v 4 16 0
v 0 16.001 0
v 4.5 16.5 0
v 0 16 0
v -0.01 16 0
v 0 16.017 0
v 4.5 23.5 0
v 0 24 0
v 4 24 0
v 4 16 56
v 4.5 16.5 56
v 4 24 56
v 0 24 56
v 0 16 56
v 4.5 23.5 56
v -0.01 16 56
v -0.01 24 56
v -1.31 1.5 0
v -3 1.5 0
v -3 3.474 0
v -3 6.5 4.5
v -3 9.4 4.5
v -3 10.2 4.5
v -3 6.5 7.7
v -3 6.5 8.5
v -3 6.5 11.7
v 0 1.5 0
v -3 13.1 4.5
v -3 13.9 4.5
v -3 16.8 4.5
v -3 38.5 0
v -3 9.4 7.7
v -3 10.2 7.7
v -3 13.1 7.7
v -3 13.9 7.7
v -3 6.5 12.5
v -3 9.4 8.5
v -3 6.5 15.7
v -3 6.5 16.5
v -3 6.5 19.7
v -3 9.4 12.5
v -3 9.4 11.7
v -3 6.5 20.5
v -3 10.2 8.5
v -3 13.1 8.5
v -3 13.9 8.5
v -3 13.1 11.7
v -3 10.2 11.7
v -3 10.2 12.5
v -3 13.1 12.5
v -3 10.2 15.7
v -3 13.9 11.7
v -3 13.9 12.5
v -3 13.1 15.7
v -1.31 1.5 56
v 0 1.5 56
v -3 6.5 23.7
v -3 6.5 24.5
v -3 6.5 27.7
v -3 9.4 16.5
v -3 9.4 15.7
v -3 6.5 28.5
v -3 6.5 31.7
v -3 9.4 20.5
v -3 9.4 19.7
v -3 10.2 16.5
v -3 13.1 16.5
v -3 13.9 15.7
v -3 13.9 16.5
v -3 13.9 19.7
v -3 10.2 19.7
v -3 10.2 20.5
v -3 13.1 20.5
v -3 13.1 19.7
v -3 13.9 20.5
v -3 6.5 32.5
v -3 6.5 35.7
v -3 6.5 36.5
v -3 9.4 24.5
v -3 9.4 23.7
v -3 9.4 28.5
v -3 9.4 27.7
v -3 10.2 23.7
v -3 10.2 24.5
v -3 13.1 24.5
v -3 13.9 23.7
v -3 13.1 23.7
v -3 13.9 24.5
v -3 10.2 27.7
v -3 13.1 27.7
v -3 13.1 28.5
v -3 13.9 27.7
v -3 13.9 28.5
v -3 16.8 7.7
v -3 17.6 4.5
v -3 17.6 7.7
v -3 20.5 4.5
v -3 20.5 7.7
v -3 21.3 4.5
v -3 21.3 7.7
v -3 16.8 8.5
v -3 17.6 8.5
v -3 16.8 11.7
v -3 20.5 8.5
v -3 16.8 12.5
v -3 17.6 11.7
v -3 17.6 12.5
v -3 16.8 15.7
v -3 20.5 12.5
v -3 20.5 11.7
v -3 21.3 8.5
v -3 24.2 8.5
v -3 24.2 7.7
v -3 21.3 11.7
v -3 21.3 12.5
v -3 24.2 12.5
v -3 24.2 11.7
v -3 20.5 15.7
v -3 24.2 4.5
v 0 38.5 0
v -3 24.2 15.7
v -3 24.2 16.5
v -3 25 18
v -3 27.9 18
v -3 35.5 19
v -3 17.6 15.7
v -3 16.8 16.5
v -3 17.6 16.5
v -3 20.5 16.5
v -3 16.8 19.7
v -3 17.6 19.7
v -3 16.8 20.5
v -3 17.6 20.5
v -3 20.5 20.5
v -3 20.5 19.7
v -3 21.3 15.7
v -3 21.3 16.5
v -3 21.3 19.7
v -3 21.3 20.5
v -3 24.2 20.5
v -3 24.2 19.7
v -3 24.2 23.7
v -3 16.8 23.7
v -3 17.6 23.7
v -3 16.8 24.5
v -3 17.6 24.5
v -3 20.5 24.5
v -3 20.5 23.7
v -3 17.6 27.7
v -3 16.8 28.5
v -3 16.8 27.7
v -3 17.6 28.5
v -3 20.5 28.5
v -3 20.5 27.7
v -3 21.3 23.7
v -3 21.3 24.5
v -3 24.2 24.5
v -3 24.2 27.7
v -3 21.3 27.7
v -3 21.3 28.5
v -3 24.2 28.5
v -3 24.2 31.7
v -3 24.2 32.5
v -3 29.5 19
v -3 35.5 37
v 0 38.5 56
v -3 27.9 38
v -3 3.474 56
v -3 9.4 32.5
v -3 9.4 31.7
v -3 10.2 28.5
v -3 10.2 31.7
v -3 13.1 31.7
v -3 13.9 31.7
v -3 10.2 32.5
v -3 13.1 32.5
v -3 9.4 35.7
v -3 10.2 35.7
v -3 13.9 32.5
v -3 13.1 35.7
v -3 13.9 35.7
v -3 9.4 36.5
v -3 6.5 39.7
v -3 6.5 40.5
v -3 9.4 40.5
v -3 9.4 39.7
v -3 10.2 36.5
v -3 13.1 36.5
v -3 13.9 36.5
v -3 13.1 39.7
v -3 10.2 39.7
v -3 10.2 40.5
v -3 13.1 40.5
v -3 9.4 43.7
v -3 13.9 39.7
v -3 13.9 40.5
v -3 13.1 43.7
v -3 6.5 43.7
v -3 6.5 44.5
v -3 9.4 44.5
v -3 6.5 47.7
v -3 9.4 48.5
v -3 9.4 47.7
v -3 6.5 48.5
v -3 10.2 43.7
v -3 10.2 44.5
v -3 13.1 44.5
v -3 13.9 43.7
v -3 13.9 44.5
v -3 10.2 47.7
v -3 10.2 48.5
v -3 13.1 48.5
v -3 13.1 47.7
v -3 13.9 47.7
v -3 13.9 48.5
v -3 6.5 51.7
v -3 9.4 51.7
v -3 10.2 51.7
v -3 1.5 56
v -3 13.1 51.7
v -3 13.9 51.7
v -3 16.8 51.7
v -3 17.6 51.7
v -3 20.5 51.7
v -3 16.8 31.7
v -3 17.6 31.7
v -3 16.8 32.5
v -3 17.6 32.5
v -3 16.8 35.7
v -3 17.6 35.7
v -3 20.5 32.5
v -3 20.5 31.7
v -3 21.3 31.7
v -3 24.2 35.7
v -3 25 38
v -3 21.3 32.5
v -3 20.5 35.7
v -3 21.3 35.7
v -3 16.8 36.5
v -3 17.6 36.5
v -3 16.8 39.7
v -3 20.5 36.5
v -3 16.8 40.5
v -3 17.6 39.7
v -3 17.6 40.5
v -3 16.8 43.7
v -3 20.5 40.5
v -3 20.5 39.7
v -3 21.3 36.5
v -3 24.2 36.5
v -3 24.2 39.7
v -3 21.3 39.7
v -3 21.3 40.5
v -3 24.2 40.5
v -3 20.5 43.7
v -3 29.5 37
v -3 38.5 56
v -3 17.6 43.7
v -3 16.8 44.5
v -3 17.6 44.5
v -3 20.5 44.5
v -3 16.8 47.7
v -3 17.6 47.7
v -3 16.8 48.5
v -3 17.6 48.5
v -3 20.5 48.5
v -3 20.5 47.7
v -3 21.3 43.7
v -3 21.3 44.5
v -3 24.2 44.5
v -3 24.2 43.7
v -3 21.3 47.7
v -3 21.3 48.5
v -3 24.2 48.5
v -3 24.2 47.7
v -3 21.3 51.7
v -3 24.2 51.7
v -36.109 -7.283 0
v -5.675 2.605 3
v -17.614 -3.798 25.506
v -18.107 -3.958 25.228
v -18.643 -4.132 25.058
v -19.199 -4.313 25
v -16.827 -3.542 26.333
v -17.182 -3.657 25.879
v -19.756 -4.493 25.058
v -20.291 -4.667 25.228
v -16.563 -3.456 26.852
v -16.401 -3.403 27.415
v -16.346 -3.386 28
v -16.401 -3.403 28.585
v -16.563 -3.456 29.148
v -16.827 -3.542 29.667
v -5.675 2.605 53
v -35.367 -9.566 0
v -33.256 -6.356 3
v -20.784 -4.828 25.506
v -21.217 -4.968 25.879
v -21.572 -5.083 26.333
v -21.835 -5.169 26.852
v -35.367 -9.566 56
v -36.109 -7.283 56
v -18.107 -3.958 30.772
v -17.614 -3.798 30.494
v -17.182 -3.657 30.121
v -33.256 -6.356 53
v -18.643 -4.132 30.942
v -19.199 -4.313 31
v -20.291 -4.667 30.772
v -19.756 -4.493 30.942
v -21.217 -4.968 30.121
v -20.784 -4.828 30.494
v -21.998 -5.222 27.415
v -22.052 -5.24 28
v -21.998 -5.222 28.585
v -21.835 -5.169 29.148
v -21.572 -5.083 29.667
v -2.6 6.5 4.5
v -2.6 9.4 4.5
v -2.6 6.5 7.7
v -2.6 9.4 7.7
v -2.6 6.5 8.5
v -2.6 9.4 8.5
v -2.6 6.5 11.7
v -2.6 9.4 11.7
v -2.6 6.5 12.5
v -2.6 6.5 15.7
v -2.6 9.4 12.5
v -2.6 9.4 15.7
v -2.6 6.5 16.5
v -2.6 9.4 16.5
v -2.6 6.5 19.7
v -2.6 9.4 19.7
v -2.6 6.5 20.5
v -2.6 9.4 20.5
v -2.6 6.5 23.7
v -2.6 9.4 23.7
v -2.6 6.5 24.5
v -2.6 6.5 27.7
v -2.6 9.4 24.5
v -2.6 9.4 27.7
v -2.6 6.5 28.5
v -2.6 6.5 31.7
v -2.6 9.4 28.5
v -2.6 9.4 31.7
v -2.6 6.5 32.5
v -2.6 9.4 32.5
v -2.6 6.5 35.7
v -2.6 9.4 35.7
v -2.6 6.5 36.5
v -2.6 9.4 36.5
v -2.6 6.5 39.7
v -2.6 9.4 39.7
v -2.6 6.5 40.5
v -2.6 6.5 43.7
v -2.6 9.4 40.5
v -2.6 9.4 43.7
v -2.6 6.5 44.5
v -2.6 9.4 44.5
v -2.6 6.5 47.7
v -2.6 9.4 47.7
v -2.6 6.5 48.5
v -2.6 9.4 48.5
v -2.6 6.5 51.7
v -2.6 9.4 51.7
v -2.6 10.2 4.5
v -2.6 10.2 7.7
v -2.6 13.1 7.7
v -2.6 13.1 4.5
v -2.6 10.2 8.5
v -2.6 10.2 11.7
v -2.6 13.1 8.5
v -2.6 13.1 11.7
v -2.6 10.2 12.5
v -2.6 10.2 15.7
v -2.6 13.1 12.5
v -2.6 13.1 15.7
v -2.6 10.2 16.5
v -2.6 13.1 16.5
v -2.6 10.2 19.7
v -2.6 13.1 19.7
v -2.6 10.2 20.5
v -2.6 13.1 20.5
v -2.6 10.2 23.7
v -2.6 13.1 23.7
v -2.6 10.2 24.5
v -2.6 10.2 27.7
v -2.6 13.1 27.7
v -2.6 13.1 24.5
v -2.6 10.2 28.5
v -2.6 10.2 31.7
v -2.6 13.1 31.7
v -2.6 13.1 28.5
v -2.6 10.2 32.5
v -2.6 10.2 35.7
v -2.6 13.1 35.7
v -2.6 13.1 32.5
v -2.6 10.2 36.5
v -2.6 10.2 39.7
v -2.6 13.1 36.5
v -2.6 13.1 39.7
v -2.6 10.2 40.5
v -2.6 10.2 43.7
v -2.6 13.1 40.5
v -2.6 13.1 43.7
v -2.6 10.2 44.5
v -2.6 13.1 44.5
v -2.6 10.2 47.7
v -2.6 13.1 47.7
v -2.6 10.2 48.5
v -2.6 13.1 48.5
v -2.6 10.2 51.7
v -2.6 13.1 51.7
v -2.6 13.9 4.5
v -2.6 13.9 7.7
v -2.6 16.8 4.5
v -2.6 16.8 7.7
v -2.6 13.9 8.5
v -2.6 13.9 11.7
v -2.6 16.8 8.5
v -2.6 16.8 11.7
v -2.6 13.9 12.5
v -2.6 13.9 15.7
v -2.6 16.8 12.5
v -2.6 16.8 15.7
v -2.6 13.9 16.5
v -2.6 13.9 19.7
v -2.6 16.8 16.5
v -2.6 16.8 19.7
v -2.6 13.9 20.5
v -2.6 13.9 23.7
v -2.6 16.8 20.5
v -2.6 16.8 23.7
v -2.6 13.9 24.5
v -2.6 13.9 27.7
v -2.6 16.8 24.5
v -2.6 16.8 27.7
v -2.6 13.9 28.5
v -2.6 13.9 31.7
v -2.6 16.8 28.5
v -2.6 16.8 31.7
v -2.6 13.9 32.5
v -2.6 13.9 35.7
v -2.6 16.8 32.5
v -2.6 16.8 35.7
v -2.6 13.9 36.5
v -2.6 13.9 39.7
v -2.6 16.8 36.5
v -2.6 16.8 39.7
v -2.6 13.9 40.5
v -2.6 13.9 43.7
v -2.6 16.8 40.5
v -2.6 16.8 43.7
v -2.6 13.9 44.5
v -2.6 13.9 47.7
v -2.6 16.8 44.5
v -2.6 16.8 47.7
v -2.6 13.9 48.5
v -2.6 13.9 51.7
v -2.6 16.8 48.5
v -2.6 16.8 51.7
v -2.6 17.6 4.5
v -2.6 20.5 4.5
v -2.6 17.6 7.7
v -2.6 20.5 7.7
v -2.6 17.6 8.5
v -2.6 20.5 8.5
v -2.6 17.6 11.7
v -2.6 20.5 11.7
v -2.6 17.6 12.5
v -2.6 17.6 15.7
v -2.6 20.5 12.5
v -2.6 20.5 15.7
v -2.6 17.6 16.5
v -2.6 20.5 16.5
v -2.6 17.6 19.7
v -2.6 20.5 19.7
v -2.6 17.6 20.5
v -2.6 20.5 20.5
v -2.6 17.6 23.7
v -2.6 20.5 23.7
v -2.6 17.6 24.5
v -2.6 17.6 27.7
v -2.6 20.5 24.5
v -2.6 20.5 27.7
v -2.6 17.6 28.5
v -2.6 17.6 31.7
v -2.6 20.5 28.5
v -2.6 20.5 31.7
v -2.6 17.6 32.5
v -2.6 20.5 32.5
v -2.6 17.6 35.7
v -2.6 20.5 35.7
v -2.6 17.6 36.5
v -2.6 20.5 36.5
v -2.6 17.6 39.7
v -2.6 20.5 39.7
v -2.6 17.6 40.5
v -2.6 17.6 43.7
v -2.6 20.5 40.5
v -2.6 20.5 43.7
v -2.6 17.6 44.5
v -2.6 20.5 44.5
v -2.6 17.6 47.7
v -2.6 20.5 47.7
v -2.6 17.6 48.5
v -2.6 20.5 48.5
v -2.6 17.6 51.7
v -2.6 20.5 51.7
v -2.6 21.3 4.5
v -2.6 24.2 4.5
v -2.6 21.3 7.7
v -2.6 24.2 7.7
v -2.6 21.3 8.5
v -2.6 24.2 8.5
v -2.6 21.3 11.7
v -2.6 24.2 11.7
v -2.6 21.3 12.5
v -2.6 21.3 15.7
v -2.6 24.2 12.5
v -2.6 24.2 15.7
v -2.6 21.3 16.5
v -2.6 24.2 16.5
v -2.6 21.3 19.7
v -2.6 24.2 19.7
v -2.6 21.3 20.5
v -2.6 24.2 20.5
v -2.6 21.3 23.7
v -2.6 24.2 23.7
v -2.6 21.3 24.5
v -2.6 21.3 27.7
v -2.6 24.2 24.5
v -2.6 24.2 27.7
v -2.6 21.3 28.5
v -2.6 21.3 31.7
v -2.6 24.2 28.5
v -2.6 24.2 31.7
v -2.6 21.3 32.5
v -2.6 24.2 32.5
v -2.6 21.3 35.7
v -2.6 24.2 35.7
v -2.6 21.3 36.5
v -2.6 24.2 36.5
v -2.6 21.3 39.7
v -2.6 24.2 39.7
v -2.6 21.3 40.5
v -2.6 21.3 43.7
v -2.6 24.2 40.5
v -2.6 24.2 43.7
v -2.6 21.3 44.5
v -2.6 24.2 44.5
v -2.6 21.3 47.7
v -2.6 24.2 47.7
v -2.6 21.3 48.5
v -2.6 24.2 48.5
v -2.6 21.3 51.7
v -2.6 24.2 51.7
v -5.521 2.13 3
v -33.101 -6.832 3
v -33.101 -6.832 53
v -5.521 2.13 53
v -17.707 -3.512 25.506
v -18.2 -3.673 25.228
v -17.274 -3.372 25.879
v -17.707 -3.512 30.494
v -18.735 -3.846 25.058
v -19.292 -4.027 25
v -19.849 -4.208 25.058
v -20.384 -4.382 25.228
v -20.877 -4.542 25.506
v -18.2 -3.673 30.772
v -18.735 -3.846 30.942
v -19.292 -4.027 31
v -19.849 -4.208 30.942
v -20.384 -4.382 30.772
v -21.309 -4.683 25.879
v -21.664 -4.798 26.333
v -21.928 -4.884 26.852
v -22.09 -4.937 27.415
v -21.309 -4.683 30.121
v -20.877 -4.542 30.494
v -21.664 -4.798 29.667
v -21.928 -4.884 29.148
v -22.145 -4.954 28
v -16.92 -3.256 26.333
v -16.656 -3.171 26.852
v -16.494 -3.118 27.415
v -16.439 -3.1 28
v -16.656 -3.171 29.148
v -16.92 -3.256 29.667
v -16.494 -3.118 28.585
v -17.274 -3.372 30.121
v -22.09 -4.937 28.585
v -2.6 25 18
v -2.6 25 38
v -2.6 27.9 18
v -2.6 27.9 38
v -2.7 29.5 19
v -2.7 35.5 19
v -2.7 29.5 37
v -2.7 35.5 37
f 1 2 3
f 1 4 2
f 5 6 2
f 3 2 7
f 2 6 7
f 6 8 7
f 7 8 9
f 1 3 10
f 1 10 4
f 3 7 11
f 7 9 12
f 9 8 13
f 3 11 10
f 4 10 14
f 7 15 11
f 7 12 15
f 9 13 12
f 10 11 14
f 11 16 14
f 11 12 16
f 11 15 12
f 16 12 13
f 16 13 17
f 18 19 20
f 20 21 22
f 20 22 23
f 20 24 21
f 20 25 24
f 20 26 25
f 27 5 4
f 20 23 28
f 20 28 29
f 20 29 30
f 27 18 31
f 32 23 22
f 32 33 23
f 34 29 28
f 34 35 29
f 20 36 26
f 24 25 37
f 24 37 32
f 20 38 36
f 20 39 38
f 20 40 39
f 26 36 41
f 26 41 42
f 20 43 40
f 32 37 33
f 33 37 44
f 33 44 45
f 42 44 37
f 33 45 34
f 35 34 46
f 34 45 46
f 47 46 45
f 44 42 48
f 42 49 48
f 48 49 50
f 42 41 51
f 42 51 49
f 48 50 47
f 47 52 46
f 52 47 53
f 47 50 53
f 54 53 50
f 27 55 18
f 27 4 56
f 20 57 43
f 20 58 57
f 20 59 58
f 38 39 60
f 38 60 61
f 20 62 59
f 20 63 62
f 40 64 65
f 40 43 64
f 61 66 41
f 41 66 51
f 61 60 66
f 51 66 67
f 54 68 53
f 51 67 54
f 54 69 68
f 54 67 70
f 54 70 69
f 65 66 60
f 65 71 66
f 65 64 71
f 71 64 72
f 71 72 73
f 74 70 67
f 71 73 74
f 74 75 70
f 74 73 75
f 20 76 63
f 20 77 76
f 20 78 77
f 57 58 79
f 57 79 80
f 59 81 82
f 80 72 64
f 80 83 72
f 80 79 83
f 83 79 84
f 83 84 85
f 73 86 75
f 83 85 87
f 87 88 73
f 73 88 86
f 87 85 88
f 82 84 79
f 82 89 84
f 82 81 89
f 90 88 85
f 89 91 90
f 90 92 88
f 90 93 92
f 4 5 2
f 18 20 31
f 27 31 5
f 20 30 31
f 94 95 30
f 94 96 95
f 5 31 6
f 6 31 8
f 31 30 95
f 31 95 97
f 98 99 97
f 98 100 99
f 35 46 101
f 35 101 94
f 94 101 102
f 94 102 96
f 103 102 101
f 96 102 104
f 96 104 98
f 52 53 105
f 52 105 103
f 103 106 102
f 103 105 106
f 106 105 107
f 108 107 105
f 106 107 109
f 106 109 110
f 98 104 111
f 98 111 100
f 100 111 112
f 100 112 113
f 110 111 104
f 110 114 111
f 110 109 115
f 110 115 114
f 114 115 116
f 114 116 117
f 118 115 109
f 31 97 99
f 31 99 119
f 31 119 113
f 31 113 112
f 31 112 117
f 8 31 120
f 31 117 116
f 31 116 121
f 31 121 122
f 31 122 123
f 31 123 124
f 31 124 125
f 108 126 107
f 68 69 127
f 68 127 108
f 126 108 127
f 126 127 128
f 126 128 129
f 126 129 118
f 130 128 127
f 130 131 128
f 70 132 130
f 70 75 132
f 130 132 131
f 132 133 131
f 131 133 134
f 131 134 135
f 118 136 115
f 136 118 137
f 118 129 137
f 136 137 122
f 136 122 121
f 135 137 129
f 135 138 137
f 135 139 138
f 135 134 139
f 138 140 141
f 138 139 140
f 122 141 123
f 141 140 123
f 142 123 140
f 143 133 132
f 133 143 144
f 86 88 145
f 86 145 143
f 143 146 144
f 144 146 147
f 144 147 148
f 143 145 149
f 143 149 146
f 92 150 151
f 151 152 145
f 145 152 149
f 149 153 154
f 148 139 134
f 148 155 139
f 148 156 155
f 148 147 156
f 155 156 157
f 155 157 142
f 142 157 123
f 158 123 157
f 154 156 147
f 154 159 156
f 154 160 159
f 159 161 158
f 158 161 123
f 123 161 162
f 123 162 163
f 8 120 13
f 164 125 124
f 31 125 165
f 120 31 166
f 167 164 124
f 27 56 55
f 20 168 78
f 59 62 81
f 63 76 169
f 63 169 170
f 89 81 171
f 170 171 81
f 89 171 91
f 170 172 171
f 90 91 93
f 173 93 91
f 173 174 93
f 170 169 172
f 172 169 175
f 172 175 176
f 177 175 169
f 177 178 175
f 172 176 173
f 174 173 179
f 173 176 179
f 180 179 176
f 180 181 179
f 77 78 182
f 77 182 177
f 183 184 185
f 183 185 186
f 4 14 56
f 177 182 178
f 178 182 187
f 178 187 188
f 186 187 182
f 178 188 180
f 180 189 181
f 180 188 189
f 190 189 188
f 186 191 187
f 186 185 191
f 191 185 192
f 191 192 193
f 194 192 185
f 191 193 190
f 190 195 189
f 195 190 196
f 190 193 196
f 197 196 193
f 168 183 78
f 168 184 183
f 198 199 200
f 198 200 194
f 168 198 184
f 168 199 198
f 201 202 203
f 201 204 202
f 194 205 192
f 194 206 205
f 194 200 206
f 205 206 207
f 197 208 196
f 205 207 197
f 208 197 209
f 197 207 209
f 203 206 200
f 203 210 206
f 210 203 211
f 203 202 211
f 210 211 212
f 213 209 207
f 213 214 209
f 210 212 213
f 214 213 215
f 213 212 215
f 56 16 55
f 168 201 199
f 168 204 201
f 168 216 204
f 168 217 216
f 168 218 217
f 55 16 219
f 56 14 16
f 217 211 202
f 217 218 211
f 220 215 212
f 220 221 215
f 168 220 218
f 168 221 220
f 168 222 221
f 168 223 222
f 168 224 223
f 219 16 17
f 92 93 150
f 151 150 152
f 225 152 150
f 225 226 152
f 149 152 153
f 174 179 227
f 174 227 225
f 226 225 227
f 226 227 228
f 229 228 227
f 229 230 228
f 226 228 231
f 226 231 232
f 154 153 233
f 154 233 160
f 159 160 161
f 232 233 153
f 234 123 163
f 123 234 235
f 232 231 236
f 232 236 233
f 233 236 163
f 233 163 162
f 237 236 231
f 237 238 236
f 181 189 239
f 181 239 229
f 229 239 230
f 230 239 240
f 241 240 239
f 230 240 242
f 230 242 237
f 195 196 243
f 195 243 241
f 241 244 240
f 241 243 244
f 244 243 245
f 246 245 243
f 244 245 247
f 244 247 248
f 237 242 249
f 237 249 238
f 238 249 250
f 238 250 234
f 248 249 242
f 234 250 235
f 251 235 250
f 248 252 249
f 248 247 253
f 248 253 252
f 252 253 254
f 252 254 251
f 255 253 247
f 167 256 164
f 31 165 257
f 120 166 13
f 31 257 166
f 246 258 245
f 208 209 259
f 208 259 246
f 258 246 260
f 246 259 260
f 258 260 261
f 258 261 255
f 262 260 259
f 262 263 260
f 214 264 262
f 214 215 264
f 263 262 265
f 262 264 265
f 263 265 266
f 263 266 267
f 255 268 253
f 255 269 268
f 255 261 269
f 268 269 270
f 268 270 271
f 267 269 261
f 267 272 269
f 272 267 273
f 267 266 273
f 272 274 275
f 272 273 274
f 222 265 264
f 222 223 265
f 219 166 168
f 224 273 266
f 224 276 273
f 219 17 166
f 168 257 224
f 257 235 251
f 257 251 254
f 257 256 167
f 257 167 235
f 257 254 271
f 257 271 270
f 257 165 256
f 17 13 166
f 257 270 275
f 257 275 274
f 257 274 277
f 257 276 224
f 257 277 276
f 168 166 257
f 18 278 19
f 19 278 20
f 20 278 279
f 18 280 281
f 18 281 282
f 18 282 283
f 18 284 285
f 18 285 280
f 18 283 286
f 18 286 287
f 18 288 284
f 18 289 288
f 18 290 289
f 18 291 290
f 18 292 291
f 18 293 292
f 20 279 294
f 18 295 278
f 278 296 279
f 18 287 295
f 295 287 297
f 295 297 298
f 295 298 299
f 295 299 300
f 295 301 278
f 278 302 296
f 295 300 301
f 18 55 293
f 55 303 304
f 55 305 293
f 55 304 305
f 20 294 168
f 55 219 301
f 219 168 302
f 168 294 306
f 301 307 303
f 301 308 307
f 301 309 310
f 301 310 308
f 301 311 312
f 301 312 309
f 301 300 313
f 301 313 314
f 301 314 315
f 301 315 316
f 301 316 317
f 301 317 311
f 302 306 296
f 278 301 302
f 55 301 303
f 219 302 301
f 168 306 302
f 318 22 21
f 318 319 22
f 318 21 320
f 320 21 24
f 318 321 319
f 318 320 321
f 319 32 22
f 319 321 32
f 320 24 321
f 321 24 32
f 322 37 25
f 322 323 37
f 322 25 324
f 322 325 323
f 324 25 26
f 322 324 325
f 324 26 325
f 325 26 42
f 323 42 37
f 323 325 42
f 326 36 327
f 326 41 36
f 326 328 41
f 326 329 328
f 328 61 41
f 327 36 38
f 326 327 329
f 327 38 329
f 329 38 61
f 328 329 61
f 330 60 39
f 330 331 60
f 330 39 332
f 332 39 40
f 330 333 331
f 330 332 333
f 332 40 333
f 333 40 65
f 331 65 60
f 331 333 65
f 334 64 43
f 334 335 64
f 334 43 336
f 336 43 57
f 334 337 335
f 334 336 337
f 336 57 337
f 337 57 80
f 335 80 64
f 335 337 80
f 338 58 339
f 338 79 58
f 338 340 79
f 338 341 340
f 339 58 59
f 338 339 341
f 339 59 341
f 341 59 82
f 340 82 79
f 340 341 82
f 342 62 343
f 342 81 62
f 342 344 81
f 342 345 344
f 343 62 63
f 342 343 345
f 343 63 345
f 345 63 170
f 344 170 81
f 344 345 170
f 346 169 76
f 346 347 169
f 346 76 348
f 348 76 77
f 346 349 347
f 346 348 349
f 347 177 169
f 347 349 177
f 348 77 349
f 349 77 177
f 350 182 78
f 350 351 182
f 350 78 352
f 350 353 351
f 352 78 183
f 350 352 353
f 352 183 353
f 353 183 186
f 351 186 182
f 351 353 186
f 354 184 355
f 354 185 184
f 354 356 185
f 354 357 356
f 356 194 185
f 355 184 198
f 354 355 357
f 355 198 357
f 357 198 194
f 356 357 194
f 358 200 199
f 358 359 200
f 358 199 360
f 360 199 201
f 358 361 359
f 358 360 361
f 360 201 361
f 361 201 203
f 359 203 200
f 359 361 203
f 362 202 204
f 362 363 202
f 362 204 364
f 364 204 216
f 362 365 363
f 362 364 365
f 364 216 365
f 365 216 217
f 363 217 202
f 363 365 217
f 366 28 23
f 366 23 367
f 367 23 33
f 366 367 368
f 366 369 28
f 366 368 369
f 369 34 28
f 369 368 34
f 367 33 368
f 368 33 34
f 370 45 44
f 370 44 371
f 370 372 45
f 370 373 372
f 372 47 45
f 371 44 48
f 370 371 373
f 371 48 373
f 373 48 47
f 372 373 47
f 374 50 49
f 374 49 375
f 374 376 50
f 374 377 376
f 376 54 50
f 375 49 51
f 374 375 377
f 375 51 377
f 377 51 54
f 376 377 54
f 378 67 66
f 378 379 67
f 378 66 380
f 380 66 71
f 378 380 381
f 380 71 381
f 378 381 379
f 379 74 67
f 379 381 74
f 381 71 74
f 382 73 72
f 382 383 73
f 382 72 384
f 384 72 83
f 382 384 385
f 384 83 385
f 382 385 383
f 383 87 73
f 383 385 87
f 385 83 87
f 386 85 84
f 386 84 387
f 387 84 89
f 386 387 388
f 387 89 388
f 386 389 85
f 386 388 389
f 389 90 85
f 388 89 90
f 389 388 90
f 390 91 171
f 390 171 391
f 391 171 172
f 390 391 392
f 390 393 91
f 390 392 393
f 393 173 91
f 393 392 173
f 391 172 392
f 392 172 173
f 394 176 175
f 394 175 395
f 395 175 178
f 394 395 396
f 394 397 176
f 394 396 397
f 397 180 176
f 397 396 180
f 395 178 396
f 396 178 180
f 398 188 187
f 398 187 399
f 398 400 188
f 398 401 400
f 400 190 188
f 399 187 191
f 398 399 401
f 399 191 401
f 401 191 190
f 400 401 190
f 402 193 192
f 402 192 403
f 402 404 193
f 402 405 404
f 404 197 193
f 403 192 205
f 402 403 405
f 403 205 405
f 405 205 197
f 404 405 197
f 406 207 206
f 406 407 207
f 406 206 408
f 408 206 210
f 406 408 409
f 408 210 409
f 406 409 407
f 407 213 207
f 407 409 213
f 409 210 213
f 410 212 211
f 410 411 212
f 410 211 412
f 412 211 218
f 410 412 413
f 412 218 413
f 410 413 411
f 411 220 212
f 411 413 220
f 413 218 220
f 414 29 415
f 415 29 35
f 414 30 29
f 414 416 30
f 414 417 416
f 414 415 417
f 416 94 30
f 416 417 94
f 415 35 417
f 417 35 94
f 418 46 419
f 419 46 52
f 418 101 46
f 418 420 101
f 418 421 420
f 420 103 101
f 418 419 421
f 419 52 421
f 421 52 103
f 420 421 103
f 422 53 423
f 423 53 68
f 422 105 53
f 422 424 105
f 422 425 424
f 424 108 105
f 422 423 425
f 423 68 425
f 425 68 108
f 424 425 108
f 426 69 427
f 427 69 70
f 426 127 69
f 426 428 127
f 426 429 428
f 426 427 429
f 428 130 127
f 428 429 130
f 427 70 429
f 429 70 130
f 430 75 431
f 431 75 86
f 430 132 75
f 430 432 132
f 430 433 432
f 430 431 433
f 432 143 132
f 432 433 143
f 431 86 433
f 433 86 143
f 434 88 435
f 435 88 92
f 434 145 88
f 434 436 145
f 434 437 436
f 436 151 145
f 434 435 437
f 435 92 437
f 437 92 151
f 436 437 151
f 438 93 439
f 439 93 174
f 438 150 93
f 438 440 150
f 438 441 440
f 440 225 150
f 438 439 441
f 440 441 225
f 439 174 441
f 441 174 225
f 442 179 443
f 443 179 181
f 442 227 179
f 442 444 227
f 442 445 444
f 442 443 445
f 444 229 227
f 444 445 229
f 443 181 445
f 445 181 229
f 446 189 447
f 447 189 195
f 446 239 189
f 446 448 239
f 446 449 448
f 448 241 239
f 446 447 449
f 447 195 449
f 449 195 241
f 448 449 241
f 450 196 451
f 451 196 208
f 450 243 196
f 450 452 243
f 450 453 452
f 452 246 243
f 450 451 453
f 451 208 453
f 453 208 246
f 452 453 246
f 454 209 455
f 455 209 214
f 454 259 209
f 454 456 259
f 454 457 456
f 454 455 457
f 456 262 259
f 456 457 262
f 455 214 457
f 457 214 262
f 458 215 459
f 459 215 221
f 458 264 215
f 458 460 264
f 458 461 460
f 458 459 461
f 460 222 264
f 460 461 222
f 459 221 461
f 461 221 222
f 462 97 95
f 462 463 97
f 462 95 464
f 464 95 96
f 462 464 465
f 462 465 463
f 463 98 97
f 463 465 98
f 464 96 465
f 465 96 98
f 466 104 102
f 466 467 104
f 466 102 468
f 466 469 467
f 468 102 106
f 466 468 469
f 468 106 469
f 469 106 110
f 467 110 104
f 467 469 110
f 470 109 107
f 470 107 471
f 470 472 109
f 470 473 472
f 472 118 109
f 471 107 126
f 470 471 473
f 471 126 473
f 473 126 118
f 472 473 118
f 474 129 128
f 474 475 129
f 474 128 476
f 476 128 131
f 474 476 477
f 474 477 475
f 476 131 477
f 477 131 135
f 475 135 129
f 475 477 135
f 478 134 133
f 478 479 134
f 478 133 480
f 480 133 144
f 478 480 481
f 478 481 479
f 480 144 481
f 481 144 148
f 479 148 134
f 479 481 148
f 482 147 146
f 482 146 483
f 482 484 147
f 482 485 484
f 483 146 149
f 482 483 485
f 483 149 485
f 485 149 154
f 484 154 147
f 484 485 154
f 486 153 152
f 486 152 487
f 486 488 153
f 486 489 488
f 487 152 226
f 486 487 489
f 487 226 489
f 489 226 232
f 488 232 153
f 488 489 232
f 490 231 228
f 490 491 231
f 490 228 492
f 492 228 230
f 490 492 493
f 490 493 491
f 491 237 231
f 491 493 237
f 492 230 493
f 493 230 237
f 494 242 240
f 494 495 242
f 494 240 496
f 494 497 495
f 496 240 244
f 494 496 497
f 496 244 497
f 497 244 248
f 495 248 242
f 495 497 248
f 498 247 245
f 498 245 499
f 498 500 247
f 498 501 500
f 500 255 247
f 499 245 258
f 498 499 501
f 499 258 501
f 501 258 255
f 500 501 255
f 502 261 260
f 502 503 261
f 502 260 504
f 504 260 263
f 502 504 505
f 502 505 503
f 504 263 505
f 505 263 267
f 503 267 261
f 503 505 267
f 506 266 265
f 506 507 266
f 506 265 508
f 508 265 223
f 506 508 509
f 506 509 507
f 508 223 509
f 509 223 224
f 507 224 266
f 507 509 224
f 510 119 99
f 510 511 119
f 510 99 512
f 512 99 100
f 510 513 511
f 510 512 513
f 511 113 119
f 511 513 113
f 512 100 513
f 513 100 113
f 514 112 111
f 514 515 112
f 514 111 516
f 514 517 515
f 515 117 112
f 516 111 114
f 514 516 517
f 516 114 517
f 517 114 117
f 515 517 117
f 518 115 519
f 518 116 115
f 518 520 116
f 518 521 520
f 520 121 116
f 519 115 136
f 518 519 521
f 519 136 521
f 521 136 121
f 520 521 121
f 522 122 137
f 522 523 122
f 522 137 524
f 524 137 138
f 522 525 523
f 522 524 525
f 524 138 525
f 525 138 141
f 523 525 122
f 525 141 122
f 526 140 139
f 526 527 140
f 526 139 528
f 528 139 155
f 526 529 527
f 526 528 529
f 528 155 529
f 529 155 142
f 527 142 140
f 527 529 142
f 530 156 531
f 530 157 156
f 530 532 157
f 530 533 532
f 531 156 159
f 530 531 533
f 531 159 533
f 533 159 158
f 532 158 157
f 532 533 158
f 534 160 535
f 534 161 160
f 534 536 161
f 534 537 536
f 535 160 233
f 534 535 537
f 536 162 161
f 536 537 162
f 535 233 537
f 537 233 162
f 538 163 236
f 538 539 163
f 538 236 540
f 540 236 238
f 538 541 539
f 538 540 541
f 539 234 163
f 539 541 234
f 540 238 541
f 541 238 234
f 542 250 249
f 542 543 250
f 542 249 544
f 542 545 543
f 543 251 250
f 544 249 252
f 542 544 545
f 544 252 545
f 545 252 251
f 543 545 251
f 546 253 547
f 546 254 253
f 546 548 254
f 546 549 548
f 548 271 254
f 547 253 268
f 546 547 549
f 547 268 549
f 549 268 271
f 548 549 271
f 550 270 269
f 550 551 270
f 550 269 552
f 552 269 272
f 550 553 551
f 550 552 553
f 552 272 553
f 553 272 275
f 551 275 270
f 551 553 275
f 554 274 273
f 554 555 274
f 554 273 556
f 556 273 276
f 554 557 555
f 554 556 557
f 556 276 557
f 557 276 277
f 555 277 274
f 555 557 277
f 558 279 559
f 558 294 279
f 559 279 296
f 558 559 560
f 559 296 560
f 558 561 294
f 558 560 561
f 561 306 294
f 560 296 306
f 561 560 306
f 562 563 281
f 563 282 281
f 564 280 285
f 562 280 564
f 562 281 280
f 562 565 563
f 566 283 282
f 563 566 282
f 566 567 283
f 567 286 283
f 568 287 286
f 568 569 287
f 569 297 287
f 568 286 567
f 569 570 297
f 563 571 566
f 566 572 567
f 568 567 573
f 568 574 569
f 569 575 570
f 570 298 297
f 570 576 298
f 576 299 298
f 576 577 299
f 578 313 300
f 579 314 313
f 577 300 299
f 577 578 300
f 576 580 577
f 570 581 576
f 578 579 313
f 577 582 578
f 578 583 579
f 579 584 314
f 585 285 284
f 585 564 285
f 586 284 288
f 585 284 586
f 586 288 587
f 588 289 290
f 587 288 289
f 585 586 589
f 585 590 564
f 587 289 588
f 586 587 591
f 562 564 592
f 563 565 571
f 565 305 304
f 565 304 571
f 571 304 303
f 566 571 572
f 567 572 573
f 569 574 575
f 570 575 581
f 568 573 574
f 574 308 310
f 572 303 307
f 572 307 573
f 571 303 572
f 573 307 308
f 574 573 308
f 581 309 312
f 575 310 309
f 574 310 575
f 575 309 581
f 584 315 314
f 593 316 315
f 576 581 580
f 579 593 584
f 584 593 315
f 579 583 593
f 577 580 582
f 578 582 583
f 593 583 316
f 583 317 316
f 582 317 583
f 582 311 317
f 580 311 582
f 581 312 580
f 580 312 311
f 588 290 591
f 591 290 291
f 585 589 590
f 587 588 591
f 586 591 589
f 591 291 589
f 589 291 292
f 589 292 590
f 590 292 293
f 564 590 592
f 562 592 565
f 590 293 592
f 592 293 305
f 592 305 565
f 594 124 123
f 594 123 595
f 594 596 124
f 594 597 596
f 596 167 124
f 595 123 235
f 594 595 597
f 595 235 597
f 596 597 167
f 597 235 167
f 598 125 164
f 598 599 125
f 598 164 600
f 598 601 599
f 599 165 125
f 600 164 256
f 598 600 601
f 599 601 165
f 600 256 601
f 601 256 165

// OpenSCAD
// file: gh_s37d.scad
// Tiny Engineer parts adapted from the EMAX ES9051 export to fit a GH-S37D servo.
//
// The ES9051 and GH-S37D are close in size. The main difference is the
// mounting-tab span, so each servo pocket's tab slot is lengthened at both
// ends. Everything else is the unchanged ES9051 mesh.
//
// Change the sizes below to match your servo (measure with calipers), then
// run ./build.sh to regenerate the STLs.

// ── GH-S37D sizes (mm) ──────────────────────────────────────────────────────
servo_body_width  = 20;    // body length, tabs not included
servo_mount_width = 5.45;  // how far each tab sticks out from the body (5.2 from listings was too short)
clearance         = 0.3;   // gap per side, same as the original model

// ES9051 values the base meshes were exported with (do not change)
base_body_width   = 20;
base_mount_width  = 4.6;

// ── Tab slots in the ES9051 meshes ─────────────────────────────────────────
// Found by measuring the meshes. All slots run along X.
// [center_x, half_span, [y_min, y_max], [z_min, z_max]]
// The y/z ranges include the open side the servo is dropped in from.
slots = [
    ["Chest", [
        [-0.950, 14.900, [-21.30, -19.60], [16.30, 27.82]],   // arm servo
        [-0.950, 14.900, [19.60, 21.30], [16.30, 27.82]],     // arm servo
        [-0.950, 14.900, [-4.70, 4.70], [19.90, 27.82]]       // neck servo
    ]],
];

new_half_span = servo_body_width / 2 + servo_mount_width + clearance;

function slots_for(part) = [for (s = slots) if (s[0] == part) s[1]][0];

// Cut both ends of each tab slot out to the new span.
// If the new span is shorter, nothing is cut (the servo still fits).
module tab_slot_extensions(part) {
    eps = 0.01;
    for (s = slots_for(part)) {
        cx = s[0]; hs = s[1]; y = s[2]; z = s[3];
        if (new_half_span > hs)
            for (dir = [-1, 1]) {
                x0 = cx + dir * (hs - eps);
                x1 = cx + dir * new_half_span;
                // eps overlap on y/z keeps the cut from sharing faces with
                // the slot walls, which gives clean manifold output
                translate([min(x0, x1), y[0] - eps, z[0] - eps])
                    cube([abs(x1 - x0), y[1] - y[0] + 2 * eps, z[1] - z[0] + 2 * eps]);
            }
    }
}

module adapted_part(part) {
    difference() {
        import(str("base/es9051/", part, ".stl"), convexity = 10);
        tab_slot_extensions(part);
    }
}
// file: torso_body.scad
// Boxy torso, styled like improve_robot.jpg. Used by Torso.scad, the desk
// parts and RobotScene.scad.
//
// The top is the original Chest (with the GH-S37D tab slots from gh_s37d.scad),
// unchanged: the two arm servos lie in it with their shafts out the sides, and
// the neck servo stands in the middle, shaft up. So the arms and the M5Dial
// head mount exactly as before. Under it is a new hollow lower body that
// replaces Belly, BellyJoint, Bell and the Chair. Its open bottom drops into
// the socket in the desk top (see desk_parts.scad), with no screws.
//
// Arm clearance: the one-piece forearms lean in so the hands meet in front of
// the body. So the Chest's side scoops are kept, and the lower body's front is
// set back 3 mm, with a 45-degree slope up to the Chest's front so it
// prints without supports. The arms clear the body from straight up down to about 40
// degrees below horizontal toward the front (the typing pose). They can't hang
// straight down, same as with the original Belly.
//
// Cables: the servo cables go down through the Chest's holes into the lower
// body and out the open bottom into the desk. The Dial's cables run down a
// groove in the back, which carries on into the desk socket.
//
// Torso frame (same as Chest): +x front, +y robot width, +z up. The Chest's
// bottom is at z = 0. The neck servo shaft is at x = neck_shaft_x, y = 0.

include <gh_s37d.scad>

// ── Chest outline (measured from Chest.stl) ────────────────────────────────
chest_half   = [17.35, 28];   // half depth (x), half width (y)
chest_top    = 25.7;
corner_r     = 2;             // vertical edge radius
neck_shaft_x = -6.55;         // neck servo shaft (cable end of the pocket is +x)
arm_shaft    = [4.65, 21];    // arm servo shafts: x, z (out the sides at y = +-28)

// ── Lower body ─────────────────────────────────────────────────────────────
body_h       = 32;            // below the Chest
body_front   = 14.35;         // lower body front face (the Chest's is at 17.35)
step_h       = chest_half[0] - body_front;   // height of the 45-degree slope up to the Chest
seam_z       = -step_h - 1.5; // seam line, just below the slope
body_wall    = 2.5;
roof_apex    = -3;            // top of the hollow inside, a 45-degree gable roof
roof_x       = 3.45;          // ridge line, under the Chest's cable holes
sink         = 8;             // how far the torso sits down into the desk socket
bottom_chamfer = 0.6;

// ── Cable groove for the Dial (back face) ──────────────────────────────────
groove_y     = [-12.5, -6];   // clear of the Chest's screw holes and neck tab slot
groove_d     = 3.5;

torso_bottom = -body_h;

module footprint(inset = 0) {
    offset(r = corner_r - inset) offset(delta = -corner_r)
        square(2 * chest_half, center = true);
}

// lower body outline: the Chest's, with the front set back
module body_footprint(inset = 0) {
    offset(r = corner_r - inset) offset(delta = -corner_r)
        translate([-chest_half[0], -chest_half[1]]) square([chest_half[0] + body_front, 2 * chest_half[1]]);
}

// The Chest's inside holes: cable holes, neck pocket and its cable slot
module inner_holes_2d() {
    intersection() { chest_holes_2d(); square([29, 39.6], center = true); }
}

// The Chest's holes at z = 8 (cable holes, neck pocket, screw holes), plus
// everything outside its outline.
module chest_holes_2d() {
    difference() {
        square(2 * chest_half + [2, 2], center = true);
        projection(cut = true) translate([0, 0, -8]) adapted_part("Chest");
    }
}

// Hollow inside the lower body: vertical walls, then a 45-degree gable roof
// with its ridge along y, so it prints without supports.
module body_cavity() {
    hw = chest_half[1] - body_wall;
    intersection() {
        translate([0, 0, torso_bottom - 1])
            linear_extrude(body_h + roof_apex + 1) body_footprint(body_wall);
        translate([roof_x, 0, roof_apex]) rotate([90, 0, 0])
            linear_extrude(2 * hw + 2, center = true)
                polygon([[-100, -100], [0, 0], [100, -100]]);
    }
}

module seam(z) {
    translate([0, 0, z - 0.4]) linear_extrude(0.8)
        difference() { body_footprint(-1); body_footprint(0.6); }
}

// Details from the picture. Front is +x; the viewer's right is +y.
module details() {
    fx = body_front;
    cx = chest_half[0];
    // seam between the chest and the lower body, and the panel lines
    seam(seam_z);
    translate([fx - 0.6, -21, -21]) cube([1, 31, 0.7]);           // panel bottom
    translate([fx - 0.6, -21, -6]) cube([1, 31, 0.7]);            // panel top
    translate([fx - 0.6, -21, -21]) cube([1, 0.7, 15.7]);         // panel left
    translate([fx - 0.6, 9.3, -21]) cube([1, 0.7, 15.7]);         // panel right
    translate([fx - 0.6, 13, -21]) cube([1, 0.7, 18]);            // long line on the right
    translate([cx - 0.6, 13, 0.5]) cube([1, 0.7, 12]);            // ...carried on up the chest
    // three vent slots, top right of the chest front
    for (i = [0 : 2]) translate([cx - 1, 9, 15 + i * 2.6]) cube([2, 11, 1.2]);
    // speaker grille, bottom right
    for (i = [0 : 3], j = [0 : 2])
        translate([fx + 1, 16 + i * 2.2, -21 + j * 2.2]) rotate([0, -90, 0]) cylinder(d = 1.2, h = 2, $fn = 12);
    // vent slots on both sides of the lower body
    for (s = [-1, 1], i = [0 : 3])
        translate([-8, s * chest_half[1] - 1, -18 + i * 3]) cube([12, 2, 1.2]);
}

// groove down the back, from the top to the bottom
module dial_cable_path() {
    translate([-chest_half[0] - 1, groove_y[0], torso_bottom - 1])
        cube([groove_d + 1, groove_y[1] - groove_y[0], chest_top + body_h + 2]);
}

module torso() {
    difference() {
        union() {
            adapted_part("Chest");
            // lower body
            difference() {
                union() {
                    hull() {
                        translate([0, 0, torso_bottom + bottom_chamfer])
                            linear_extrude(body_h - bottom_chamfer - step_h + 0.01) body_footprint();
                        translate([0, 0, torso_bottom]) linear_extrude(1) body_footprint(bottom_chamfer);
                    }
                    // 45-degree slope up to the Chest's front, instead of a flat step
                    hull() {
                        translate([0, 0, -step_h]) linear_extrude(0.01) body_footprint();
                        translate([0, 0, -0.01]) linear_extrude(0.02) footprint();
                    }
                }
                body_cavity();
                // keep the Chest's holes open down into the cavity
                translate([0, 0, roof_apex - 20]) linear_extrude(-roof_apex + 21)
                    inner_holes_2d();
            }
        }
        details();
        dial_cable_path();
    }
}
// main file
// Laptop for the desk: one piece with the lid open, and a tab underneath that
// drops into the slot in DeskBox in front of the robot. See desk_parts.scad.
// Print as exported, lying on its side (the base, lid and tab ends share one
// flat face on the bed). No supports.
include <desk_parts.scad>

translate([0, 0, lap_w / 2]) rotate([0, -90, 0]) translate([0, 0, -desk_h]) laptop_part();
